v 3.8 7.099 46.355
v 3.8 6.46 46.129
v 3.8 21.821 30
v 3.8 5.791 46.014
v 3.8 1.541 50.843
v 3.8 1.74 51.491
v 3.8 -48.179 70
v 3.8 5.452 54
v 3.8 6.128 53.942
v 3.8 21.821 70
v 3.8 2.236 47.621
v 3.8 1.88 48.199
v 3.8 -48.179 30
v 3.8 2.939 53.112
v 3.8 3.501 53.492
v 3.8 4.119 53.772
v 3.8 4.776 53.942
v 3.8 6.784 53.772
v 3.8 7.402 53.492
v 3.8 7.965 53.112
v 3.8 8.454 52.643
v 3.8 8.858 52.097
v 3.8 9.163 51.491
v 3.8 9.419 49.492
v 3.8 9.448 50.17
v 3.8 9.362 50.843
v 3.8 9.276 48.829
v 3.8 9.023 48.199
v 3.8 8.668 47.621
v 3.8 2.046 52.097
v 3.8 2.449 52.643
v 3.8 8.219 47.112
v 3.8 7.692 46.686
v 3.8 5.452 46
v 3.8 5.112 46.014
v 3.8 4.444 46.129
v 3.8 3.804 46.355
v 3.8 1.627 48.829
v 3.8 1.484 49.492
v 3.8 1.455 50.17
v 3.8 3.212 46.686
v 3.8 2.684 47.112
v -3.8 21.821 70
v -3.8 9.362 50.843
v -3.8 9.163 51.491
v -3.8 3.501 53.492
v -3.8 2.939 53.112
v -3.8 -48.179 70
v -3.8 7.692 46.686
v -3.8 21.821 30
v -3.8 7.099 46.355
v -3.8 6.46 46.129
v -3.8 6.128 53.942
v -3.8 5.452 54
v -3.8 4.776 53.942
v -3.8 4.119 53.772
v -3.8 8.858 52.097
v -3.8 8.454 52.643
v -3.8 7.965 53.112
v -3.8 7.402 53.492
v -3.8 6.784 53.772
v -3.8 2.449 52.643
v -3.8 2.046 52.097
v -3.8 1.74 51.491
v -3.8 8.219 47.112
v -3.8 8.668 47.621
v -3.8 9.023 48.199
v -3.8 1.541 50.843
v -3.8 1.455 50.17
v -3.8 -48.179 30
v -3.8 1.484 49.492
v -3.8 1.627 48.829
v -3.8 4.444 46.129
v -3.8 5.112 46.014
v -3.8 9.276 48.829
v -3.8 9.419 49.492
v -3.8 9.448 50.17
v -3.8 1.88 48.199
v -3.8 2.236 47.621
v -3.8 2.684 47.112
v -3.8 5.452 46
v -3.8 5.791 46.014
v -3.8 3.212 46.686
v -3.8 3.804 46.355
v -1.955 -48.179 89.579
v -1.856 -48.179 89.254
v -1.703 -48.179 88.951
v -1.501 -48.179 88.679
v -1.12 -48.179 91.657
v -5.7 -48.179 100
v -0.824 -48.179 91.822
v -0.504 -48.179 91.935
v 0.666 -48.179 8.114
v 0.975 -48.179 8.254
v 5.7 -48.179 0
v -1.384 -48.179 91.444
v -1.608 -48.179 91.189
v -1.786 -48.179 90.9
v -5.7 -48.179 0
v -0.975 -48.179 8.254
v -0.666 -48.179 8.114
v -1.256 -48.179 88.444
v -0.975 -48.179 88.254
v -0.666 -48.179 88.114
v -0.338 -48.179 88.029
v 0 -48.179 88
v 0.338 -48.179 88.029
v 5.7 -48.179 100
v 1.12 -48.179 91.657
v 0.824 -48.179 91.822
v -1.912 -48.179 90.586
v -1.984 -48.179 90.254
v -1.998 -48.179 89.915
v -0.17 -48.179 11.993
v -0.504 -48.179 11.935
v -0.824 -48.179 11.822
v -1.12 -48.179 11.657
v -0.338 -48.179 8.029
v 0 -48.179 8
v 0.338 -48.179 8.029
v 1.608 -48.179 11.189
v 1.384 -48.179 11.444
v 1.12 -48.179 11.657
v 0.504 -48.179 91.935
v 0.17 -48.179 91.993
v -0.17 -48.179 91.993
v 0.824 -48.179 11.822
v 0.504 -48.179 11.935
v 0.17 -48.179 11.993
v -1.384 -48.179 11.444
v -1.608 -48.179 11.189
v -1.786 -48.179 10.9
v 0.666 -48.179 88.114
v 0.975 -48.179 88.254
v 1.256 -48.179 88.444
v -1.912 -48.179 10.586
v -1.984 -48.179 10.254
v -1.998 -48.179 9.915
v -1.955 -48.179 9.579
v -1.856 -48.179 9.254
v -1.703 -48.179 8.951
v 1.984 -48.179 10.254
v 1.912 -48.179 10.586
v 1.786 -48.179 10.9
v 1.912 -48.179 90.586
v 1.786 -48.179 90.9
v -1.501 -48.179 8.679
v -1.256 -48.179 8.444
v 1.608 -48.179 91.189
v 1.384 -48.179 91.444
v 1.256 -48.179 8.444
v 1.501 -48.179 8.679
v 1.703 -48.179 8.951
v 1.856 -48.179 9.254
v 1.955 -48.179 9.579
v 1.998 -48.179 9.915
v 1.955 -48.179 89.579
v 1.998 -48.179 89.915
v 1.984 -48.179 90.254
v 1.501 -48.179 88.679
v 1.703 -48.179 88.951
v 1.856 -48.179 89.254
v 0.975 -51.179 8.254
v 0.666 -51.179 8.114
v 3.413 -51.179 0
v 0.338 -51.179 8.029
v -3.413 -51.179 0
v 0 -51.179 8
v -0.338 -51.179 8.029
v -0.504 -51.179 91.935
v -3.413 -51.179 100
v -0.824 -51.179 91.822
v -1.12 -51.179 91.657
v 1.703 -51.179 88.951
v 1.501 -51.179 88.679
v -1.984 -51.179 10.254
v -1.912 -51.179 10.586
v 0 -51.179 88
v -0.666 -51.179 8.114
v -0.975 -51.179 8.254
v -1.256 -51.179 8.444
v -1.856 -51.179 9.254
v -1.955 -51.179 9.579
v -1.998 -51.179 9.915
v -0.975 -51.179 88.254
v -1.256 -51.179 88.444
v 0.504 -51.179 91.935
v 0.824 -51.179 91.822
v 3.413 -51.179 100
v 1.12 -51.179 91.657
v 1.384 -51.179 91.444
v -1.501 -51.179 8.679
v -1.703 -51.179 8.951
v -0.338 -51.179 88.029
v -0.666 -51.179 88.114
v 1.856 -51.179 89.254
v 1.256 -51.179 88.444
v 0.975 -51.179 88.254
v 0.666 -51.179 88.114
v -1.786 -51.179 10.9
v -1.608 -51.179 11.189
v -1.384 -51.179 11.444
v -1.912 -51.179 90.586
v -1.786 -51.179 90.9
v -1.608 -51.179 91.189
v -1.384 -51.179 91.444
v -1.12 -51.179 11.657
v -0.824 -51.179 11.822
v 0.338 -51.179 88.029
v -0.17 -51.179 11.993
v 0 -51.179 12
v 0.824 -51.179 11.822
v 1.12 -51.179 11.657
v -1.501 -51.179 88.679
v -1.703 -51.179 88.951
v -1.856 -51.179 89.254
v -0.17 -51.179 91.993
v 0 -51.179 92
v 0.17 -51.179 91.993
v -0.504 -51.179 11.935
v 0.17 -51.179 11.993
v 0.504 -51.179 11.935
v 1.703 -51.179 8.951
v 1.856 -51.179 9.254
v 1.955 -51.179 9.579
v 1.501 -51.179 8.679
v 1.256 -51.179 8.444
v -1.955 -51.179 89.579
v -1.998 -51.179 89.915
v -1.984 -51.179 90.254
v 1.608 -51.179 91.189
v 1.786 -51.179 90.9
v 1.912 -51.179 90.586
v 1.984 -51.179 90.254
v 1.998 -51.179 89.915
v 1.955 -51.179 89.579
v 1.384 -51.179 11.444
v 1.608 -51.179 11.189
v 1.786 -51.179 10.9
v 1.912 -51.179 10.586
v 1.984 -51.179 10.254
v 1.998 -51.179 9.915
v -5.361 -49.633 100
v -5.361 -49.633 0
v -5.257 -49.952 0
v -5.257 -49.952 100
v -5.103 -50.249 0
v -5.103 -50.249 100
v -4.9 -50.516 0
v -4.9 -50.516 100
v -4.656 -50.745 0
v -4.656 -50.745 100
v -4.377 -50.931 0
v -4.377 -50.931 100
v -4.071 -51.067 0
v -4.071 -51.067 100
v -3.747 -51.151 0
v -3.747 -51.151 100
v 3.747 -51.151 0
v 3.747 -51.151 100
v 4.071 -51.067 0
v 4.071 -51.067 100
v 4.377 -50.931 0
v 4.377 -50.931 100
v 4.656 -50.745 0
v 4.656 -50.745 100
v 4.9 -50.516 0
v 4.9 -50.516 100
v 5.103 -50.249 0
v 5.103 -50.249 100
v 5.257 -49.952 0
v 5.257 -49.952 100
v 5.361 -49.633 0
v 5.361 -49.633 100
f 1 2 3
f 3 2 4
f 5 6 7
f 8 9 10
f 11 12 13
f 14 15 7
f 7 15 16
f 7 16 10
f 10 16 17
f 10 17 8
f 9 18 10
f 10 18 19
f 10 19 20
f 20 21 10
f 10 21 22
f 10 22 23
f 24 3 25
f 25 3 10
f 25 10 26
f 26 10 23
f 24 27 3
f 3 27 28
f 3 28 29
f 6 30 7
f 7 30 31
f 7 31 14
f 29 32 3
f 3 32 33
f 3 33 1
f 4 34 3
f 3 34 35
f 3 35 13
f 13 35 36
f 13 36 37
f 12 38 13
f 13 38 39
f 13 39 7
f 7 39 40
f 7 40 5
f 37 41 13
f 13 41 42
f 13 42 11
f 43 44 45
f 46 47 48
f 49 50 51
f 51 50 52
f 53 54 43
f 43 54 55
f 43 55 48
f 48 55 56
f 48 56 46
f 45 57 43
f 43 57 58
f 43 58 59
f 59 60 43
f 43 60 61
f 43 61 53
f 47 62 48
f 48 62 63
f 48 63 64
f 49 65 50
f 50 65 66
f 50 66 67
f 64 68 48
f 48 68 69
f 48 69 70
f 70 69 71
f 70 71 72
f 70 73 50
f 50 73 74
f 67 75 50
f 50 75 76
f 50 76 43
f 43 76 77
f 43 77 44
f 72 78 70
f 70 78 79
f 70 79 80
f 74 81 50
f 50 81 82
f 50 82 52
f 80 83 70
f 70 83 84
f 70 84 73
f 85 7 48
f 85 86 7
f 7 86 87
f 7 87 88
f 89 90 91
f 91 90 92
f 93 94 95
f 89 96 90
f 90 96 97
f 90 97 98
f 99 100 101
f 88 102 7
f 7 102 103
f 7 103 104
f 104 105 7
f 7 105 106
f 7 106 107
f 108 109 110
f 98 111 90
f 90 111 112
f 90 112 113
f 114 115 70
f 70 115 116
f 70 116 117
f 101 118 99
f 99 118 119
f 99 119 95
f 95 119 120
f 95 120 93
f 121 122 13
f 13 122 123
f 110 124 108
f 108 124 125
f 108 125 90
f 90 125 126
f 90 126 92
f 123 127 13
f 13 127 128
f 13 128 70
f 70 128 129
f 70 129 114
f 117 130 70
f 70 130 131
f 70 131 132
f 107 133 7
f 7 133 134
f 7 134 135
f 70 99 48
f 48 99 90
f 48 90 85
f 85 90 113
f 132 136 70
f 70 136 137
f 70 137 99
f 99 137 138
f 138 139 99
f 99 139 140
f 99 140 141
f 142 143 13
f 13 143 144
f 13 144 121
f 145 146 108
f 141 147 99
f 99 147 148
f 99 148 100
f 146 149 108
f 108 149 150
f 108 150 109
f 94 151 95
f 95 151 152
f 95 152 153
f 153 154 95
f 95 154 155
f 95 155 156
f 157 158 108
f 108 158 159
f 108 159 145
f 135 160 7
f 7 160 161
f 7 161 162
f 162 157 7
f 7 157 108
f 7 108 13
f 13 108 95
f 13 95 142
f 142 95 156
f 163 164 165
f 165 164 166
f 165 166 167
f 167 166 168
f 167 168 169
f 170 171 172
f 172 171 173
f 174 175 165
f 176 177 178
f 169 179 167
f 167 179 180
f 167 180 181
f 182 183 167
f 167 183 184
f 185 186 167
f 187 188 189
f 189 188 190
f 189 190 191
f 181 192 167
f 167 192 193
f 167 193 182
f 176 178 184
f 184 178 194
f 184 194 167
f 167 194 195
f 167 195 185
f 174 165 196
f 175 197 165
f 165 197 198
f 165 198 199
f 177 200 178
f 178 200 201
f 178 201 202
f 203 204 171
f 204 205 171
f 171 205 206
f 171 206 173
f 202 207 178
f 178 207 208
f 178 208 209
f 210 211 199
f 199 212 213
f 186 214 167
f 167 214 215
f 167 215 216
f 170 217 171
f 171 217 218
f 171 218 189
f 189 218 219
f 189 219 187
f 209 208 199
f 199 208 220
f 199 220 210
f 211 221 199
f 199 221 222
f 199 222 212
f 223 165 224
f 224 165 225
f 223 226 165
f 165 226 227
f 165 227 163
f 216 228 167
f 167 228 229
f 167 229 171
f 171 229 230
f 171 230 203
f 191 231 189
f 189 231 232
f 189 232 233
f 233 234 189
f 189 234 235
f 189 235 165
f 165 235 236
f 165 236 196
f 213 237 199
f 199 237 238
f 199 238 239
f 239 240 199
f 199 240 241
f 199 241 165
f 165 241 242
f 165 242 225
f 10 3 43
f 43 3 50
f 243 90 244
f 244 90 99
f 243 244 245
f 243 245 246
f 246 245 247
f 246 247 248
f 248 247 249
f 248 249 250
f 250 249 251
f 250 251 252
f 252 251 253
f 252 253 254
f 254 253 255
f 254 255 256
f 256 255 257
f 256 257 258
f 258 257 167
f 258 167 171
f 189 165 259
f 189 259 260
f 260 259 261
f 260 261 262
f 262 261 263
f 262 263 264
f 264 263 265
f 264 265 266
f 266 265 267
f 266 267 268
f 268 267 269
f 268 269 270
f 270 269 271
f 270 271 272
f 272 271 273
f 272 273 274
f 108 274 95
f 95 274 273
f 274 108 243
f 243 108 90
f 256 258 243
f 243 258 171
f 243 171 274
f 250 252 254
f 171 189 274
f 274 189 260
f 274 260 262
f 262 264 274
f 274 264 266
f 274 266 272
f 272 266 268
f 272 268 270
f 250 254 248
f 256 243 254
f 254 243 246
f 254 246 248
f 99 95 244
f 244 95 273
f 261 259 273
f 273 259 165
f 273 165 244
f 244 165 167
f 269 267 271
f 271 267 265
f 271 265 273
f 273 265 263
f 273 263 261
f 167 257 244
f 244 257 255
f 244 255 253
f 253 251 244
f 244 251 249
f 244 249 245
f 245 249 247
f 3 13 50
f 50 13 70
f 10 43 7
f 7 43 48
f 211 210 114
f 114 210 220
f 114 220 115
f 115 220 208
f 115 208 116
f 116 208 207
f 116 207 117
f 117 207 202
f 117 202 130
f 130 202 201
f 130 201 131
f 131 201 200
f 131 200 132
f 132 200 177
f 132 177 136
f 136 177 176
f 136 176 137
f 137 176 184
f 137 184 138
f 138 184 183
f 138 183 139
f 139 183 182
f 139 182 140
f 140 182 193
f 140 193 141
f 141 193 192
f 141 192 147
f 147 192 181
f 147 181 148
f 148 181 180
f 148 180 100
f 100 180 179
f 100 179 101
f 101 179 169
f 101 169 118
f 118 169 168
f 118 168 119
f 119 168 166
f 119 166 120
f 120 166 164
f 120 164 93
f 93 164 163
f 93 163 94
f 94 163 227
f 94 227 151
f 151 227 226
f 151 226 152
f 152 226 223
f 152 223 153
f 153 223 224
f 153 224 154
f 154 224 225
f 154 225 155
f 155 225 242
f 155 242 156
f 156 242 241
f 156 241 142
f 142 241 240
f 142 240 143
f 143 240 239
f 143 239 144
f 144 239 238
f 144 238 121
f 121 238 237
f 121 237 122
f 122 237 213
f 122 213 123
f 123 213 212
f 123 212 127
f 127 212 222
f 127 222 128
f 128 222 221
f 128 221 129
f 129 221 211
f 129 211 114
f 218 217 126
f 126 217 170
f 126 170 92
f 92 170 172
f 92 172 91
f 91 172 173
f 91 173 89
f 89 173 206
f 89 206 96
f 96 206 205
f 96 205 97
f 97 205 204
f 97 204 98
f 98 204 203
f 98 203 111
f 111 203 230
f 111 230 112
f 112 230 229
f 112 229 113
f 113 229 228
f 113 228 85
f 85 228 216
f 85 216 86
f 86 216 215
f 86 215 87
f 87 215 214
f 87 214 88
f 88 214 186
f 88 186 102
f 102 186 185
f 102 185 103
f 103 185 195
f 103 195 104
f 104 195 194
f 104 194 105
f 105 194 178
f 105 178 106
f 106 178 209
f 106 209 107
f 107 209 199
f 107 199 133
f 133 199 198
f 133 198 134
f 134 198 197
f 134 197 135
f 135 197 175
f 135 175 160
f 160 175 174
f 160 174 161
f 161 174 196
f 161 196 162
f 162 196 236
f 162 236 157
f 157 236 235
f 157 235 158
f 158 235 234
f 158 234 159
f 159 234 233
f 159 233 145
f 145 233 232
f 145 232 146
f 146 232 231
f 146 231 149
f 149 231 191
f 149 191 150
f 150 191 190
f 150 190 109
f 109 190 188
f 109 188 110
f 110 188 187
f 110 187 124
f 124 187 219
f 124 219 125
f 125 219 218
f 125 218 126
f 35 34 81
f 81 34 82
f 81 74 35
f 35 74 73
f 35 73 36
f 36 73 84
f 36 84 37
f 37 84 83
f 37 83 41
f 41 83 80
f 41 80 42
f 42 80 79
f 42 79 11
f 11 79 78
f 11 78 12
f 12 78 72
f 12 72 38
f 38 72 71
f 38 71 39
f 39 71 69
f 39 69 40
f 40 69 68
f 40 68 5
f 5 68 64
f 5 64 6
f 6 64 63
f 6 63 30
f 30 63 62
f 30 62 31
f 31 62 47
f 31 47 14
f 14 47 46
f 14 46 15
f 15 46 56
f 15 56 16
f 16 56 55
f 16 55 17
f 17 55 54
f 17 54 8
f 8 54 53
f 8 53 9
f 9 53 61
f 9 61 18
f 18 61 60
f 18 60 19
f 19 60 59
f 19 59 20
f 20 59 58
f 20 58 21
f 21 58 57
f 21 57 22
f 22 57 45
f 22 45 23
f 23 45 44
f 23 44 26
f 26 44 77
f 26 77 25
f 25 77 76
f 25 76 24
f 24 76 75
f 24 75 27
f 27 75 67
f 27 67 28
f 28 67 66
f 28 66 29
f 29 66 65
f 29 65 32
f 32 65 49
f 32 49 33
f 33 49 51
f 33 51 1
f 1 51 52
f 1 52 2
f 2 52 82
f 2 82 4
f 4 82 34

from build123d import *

# Parameters (mm, degrees)
RESSALTO_EXTRUS_O2_DEPTH   = 100
CORTE_EXTRUS_O4_DEPTH      = 30
CORTE_EXTRUS_O4_DEPTH_BACK = 1
ESBO_O2_W                  = 7.6
ESBO_O2_H                  = 70
CORTE_EXTRUS_O5_DEPTH      = 30
CORTE_EXTRUS_O7_DEPTH      = 21
CORTE_EXTRUS_O7_DEPTH_BACK = 22
F_3DSKETCH4_R              = 2
CORTE_EXTRUS_O8_START      = -3.8
CORTE_EXTRUS_O8_OUTLINE_R  = 4
CORTE_EXTRUS_O8_DEPTH      = 7.6


# Read off the part's stored shape, not the designer's step: Corte-extrusão8
with BuildPart() as part:
    # Esboço1 → Ressalto-extrusão2 (new body)
    with BuildSketch(Plane.XY):
        with BuildLine():
            Line((-3.8, -48.178624659), (-5.7, -48.178624659))
            Line((-5.7, -48.178624659), (-5.360626179, -49.63308389))
            ThreePointArc((-5.360626179, -49.63308389), (-4.656141559, -50.745296045), (-3.41294376, -51.178624659))
            Line((-3.41294376, -51.178624659), (3.41294376, -51.178624659))
            ThreePointArc((3.41294376, -51.178624659), (4.656141559, -50.745296045), (5.360626179, -49.63308389))
            Line((5.360626179, -49.63308389), (5.7, -48.178624659))
            Line((5.7, -48.178624659), (3.8, -48.178624659))
            Line((3.8, -48.178624659), (3.8, 21.821375341))
            Line((3.8, 21.821375341), (-3.8, 21.821375341))
            Line((-3.8, 21.821375341), (-3.8, -48.178624659))
        make_face()
    extrude(amount=RESSALTO_EXTRUS_O2_DEPTH)

    # Esboço2 → Corte-extrusão4 (cut, two sides: drawn at the far end of the back side and taken through both)
    with BuildSketch(Plane.XY.offset(-CORTE_EXTRUS_O4_DEPTH_BACK)):
        with Locations((0, -13.178624659)):
            Rectangle(ESBO_O2_W, ESBO_O2_H)
    extrude(amount=CORTE_EXTRUS_O4_DEPTH + CORTE_EXTRUS_O4_DEPTH_BACK, mode=Mode.SUBTRACT)

    # 3DSketch1 → Corte-extrusão5 (cut)
    with BuildSketch(Plane(origin=(-3.8, 21.821375341, 100), x_dir=(0.10793712415834626, -0.9941577225110841, 0), z_dir=(0, 0, 1))):
        Polygon((0, 0), (0.820322144, 7.555598691), (70.411362719, 0), (69.591040576, -7.555598691), align=None)
    extrude(amount=-CORTE_EXTRUS_O5_DEPTH, mode=Mode.SUBTRACT)

    # 3DSketch4 → Corte-extrusão7 (cut, two sides: drawn at the far end of the back side and taken through both)
    with BuildSketch(Plane(origin=(0, -48.178624659, 10), x_dir=(0, 0, 1), z_dir=(0, 1, 0)).offset(-CORTE_EXTRUS_O7_DEPTH_BACK)):
        with Locations(Location((0, 0, 0), (0, 0, 180))):
            Circle(F_3DSKETCH4_R)
        with Locations(Location((80, 0, 0), (0, 0, 180))):
            Circle(F_3DSKETCH4_R)
    extrude(amount=CORTE_EXTRUS_O7_DEPTH + CORTE_EXTRUS_O7_DEPTH_BACK, mode=Mode.SUBTRACT)

    # Corte-extrusão8 outline → Corte-extrusão8 (cut)
    with BuildSketch(Plane.YZ.offset(CORTE_EXTRUS_O8_START)):
        with Locations((5.45168837, 50)):
            Circle(CORTE_EXTRUS_O8_OUTLINE_R)
    extrude(amount=CORTE_EXTRUS_O8_DEPTH, mode=Mode.SUBTRACT)


solid = part.part
